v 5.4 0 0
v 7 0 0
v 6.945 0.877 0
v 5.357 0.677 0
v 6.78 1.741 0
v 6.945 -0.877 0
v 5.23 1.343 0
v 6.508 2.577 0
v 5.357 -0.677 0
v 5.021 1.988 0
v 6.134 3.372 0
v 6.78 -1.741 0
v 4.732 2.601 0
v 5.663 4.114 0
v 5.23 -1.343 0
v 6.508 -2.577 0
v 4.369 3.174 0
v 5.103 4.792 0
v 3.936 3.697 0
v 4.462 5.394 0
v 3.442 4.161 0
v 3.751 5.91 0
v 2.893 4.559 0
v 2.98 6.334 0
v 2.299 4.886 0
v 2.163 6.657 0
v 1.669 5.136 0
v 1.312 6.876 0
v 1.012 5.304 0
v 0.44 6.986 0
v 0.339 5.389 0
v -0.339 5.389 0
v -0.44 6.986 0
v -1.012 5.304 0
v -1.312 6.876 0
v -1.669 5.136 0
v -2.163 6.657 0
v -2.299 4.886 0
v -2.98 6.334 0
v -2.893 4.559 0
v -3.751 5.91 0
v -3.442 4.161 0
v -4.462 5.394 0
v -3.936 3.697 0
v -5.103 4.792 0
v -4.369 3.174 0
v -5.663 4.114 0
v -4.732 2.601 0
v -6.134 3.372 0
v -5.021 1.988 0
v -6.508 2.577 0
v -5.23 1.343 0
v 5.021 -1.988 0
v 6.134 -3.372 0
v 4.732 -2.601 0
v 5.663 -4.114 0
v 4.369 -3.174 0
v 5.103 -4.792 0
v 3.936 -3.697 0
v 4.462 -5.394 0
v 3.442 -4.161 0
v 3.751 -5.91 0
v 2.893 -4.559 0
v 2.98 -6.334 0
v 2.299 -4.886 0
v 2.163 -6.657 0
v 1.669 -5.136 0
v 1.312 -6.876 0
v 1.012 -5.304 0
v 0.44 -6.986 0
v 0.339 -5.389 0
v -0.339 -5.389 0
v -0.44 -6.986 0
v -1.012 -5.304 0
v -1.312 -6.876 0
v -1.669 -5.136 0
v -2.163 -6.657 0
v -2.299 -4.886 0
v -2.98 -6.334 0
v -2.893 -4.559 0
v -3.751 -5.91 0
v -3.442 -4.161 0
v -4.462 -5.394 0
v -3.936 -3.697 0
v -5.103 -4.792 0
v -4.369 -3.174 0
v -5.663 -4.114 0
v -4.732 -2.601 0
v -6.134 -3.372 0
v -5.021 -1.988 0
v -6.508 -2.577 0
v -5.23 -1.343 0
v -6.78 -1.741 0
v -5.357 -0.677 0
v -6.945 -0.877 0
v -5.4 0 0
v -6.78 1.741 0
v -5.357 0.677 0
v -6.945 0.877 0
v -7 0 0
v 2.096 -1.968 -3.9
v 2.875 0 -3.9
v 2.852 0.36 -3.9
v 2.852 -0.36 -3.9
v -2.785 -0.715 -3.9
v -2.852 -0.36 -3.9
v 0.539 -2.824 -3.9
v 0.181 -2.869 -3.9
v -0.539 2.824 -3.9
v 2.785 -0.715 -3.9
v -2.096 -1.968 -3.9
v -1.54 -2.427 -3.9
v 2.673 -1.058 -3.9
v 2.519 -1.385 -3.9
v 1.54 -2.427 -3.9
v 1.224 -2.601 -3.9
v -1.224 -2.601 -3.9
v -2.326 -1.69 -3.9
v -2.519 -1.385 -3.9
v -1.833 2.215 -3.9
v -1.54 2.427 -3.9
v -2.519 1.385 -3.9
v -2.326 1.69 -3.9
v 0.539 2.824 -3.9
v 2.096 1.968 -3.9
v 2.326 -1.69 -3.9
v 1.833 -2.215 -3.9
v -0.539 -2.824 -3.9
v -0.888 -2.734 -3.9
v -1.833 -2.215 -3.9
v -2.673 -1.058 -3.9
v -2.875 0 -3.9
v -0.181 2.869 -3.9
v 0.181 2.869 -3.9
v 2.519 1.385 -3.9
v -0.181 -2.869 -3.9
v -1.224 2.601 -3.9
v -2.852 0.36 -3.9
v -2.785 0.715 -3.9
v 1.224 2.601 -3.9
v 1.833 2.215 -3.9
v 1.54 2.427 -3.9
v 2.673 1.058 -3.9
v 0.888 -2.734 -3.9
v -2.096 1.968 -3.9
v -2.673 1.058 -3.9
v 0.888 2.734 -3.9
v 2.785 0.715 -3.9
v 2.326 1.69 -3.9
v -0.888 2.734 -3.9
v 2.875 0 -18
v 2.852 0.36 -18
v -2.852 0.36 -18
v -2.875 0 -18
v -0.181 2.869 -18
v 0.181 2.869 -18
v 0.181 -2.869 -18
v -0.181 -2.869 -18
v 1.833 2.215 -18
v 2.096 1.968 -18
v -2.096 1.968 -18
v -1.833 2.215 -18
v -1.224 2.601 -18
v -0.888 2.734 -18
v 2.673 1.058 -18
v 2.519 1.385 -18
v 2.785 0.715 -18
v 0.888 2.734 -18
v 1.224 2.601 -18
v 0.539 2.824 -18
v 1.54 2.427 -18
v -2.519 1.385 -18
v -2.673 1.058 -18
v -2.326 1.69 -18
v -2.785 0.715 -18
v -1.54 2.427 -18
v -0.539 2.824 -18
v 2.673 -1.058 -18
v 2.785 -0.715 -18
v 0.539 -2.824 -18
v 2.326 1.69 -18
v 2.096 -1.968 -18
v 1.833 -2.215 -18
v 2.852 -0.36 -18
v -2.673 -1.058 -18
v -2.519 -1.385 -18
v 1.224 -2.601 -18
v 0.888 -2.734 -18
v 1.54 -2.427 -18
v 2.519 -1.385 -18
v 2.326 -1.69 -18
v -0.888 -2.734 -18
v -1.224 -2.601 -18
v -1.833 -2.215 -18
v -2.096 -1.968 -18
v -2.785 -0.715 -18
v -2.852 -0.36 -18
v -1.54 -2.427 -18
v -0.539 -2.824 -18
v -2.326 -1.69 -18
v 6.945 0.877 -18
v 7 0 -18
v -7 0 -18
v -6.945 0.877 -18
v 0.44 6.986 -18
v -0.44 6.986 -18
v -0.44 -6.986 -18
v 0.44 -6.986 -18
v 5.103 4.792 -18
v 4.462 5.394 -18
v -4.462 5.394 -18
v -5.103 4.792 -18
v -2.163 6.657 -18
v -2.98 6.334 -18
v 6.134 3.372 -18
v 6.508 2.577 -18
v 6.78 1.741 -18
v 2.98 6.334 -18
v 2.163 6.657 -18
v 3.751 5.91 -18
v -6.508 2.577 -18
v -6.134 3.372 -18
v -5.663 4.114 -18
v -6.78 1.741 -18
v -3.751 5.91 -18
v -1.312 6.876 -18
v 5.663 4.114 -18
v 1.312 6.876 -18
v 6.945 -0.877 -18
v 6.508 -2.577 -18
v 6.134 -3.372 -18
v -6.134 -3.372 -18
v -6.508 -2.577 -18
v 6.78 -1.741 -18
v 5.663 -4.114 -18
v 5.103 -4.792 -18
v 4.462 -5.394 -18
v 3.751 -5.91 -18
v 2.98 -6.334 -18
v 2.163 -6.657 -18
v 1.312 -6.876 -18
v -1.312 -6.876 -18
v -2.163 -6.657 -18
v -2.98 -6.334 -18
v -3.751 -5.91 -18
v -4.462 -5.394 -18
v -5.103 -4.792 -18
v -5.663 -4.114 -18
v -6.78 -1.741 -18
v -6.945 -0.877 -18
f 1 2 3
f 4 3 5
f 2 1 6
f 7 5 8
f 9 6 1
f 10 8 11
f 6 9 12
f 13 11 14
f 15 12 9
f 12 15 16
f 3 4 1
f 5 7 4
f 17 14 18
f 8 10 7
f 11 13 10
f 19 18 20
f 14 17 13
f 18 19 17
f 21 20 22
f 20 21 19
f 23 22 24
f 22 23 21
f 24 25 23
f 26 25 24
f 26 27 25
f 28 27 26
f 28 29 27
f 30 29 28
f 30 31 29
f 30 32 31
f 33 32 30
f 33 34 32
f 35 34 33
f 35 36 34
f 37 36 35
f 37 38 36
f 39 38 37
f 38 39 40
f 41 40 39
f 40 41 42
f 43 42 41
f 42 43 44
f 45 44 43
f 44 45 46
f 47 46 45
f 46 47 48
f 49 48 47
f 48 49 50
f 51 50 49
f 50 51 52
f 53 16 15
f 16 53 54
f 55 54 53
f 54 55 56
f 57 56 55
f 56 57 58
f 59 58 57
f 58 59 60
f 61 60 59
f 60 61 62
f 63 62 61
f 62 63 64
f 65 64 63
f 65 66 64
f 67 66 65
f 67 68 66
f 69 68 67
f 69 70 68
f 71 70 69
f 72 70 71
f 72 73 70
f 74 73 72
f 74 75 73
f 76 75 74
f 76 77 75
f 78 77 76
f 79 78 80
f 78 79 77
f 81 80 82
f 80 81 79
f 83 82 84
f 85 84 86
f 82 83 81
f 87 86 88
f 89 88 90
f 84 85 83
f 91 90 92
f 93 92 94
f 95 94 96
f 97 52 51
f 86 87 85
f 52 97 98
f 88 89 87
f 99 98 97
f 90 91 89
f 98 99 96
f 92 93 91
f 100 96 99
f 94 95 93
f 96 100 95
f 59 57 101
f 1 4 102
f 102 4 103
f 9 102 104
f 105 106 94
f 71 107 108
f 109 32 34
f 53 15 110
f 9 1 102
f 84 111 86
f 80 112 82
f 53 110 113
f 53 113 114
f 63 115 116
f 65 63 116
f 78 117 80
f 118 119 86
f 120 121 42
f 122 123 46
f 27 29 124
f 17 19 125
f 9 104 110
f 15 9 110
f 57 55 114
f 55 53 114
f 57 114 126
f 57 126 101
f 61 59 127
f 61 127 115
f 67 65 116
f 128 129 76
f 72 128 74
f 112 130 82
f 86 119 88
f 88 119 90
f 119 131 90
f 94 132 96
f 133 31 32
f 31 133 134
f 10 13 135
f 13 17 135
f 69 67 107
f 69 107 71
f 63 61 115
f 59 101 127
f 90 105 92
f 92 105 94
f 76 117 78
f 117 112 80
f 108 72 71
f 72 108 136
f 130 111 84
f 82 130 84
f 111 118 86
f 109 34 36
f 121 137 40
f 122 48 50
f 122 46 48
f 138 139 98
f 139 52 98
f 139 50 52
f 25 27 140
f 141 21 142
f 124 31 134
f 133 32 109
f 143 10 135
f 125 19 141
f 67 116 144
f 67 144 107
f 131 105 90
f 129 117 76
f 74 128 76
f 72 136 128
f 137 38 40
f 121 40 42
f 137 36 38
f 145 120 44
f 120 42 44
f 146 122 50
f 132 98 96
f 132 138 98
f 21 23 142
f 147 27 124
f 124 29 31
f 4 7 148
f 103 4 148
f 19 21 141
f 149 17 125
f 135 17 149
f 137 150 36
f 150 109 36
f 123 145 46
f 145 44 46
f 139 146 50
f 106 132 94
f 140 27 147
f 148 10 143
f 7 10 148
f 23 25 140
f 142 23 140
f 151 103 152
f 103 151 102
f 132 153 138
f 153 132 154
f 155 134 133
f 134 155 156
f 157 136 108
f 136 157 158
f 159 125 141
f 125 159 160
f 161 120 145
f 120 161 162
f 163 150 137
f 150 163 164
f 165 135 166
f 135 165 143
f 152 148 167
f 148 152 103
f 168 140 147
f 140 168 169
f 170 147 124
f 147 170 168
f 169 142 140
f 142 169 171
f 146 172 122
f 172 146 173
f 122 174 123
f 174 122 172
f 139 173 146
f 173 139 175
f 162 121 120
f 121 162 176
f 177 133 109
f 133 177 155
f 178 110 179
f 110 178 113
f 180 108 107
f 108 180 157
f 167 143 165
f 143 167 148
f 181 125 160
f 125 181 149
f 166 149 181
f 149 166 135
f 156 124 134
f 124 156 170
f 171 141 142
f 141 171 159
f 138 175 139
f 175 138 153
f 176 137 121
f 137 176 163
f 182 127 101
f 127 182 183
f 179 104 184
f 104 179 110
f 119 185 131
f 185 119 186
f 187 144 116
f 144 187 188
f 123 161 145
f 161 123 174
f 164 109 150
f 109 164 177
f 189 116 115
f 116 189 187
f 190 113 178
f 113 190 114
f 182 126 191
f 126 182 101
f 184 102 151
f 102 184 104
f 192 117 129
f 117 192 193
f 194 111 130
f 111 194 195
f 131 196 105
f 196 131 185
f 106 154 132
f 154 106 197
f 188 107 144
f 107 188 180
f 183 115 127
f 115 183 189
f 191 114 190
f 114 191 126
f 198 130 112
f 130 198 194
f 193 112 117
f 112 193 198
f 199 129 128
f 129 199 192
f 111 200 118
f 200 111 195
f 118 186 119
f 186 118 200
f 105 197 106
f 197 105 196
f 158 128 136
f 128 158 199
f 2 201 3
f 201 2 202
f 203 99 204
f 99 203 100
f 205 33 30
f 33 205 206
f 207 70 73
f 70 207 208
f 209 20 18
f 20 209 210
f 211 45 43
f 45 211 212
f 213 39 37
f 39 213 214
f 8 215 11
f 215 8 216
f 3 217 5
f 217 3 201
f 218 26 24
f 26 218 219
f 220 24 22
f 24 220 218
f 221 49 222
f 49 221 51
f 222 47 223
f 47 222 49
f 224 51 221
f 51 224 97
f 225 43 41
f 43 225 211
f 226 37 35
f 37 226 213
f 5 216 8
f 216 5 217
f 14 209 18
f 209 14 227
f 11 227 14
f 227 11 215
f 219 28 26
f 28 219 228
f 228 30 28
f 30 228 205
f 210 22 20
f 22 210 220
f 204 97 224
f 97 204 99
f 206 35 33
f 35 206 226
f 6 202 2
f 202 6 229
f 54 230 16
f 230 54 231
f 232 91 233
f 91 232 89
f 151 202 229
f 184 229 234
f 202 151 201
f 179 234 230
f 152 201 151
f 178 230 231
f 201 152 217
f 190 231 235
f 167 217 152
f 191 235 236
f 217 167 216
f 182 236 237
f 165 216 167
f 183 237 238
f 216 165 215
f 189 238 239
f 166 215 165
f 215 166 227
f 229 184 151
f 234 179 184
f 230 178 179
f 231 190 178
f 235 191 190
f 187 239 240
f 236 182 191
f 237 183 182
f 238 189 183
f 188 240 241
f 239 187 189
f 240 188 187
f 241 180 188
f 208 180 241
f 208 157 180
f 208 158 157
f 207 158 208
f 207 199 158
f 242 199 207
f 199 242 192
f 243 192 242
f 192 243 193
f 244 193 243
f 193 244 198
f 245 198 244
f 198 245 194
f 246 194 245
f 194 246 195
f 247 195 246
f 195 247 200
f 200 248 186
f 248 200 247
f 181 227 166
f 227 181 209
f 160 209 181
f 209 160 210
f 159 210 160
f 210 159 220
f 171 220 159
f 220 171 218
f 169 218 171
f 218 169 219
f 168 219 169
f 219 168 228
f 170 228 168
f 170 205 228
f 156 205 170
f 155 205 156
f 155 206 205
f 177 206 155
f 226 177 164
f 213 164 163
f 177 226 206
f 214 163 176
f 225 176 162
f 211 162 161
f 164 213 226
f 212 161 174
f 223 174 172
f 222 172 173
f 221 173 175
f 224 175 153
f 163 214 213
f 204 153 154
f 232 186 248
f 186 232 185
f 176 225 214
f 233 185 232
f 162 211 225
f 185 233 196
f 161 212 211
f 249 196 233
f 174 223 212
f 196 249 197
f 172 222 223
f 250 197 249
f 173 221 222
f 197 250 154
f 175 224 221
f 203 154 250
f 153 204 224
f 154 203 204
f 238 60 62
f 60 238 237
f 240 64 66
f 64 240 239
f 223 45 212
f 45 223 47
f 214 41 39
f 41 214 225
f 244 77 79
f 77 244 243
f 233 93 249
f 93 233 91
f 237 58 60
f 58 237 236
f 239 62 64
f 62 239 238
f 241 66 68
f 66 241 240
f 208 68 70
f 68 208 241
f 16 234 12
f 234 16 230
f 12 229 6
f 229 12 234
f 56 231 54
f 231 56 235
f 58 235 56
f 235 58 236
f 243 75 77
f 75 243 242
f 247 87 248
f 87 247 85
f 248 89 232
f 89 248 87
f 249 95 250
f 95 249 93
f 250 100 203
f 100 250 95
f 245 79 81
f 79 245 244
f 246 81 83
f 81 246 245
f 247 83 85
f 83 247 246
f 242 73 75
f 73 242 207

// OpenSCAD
$fn = 50;

difference() {
	union() {
		translate(v = [0, 0, -18.0]) {
			cylinder(h = 18, r = 7.0);
		}
	}
	union() {
		translate(v = [0, 0, 0]) {
			rotate(a = [0, 0, 0]) {
				difference() {
					union() {
						translate(v = [0, 0, -21.0]) {
							cylinder(h = 21, r = 2.6);
						}
						translate(v = [0, 0, -3.9]) {
							cylinder(h = 3.9, r1 = 2.875, r2 = 5.4);
						}
						translate(v = [0, 0, -21.0]) {
							cylinder(h = 21, r = 2.875);
						}
						translate(v = [0, 0, -21.0]) {
							cylinder(h = 21, r = 2.6);
						}
					}
					union();
				}
			}
		}
	}
}
